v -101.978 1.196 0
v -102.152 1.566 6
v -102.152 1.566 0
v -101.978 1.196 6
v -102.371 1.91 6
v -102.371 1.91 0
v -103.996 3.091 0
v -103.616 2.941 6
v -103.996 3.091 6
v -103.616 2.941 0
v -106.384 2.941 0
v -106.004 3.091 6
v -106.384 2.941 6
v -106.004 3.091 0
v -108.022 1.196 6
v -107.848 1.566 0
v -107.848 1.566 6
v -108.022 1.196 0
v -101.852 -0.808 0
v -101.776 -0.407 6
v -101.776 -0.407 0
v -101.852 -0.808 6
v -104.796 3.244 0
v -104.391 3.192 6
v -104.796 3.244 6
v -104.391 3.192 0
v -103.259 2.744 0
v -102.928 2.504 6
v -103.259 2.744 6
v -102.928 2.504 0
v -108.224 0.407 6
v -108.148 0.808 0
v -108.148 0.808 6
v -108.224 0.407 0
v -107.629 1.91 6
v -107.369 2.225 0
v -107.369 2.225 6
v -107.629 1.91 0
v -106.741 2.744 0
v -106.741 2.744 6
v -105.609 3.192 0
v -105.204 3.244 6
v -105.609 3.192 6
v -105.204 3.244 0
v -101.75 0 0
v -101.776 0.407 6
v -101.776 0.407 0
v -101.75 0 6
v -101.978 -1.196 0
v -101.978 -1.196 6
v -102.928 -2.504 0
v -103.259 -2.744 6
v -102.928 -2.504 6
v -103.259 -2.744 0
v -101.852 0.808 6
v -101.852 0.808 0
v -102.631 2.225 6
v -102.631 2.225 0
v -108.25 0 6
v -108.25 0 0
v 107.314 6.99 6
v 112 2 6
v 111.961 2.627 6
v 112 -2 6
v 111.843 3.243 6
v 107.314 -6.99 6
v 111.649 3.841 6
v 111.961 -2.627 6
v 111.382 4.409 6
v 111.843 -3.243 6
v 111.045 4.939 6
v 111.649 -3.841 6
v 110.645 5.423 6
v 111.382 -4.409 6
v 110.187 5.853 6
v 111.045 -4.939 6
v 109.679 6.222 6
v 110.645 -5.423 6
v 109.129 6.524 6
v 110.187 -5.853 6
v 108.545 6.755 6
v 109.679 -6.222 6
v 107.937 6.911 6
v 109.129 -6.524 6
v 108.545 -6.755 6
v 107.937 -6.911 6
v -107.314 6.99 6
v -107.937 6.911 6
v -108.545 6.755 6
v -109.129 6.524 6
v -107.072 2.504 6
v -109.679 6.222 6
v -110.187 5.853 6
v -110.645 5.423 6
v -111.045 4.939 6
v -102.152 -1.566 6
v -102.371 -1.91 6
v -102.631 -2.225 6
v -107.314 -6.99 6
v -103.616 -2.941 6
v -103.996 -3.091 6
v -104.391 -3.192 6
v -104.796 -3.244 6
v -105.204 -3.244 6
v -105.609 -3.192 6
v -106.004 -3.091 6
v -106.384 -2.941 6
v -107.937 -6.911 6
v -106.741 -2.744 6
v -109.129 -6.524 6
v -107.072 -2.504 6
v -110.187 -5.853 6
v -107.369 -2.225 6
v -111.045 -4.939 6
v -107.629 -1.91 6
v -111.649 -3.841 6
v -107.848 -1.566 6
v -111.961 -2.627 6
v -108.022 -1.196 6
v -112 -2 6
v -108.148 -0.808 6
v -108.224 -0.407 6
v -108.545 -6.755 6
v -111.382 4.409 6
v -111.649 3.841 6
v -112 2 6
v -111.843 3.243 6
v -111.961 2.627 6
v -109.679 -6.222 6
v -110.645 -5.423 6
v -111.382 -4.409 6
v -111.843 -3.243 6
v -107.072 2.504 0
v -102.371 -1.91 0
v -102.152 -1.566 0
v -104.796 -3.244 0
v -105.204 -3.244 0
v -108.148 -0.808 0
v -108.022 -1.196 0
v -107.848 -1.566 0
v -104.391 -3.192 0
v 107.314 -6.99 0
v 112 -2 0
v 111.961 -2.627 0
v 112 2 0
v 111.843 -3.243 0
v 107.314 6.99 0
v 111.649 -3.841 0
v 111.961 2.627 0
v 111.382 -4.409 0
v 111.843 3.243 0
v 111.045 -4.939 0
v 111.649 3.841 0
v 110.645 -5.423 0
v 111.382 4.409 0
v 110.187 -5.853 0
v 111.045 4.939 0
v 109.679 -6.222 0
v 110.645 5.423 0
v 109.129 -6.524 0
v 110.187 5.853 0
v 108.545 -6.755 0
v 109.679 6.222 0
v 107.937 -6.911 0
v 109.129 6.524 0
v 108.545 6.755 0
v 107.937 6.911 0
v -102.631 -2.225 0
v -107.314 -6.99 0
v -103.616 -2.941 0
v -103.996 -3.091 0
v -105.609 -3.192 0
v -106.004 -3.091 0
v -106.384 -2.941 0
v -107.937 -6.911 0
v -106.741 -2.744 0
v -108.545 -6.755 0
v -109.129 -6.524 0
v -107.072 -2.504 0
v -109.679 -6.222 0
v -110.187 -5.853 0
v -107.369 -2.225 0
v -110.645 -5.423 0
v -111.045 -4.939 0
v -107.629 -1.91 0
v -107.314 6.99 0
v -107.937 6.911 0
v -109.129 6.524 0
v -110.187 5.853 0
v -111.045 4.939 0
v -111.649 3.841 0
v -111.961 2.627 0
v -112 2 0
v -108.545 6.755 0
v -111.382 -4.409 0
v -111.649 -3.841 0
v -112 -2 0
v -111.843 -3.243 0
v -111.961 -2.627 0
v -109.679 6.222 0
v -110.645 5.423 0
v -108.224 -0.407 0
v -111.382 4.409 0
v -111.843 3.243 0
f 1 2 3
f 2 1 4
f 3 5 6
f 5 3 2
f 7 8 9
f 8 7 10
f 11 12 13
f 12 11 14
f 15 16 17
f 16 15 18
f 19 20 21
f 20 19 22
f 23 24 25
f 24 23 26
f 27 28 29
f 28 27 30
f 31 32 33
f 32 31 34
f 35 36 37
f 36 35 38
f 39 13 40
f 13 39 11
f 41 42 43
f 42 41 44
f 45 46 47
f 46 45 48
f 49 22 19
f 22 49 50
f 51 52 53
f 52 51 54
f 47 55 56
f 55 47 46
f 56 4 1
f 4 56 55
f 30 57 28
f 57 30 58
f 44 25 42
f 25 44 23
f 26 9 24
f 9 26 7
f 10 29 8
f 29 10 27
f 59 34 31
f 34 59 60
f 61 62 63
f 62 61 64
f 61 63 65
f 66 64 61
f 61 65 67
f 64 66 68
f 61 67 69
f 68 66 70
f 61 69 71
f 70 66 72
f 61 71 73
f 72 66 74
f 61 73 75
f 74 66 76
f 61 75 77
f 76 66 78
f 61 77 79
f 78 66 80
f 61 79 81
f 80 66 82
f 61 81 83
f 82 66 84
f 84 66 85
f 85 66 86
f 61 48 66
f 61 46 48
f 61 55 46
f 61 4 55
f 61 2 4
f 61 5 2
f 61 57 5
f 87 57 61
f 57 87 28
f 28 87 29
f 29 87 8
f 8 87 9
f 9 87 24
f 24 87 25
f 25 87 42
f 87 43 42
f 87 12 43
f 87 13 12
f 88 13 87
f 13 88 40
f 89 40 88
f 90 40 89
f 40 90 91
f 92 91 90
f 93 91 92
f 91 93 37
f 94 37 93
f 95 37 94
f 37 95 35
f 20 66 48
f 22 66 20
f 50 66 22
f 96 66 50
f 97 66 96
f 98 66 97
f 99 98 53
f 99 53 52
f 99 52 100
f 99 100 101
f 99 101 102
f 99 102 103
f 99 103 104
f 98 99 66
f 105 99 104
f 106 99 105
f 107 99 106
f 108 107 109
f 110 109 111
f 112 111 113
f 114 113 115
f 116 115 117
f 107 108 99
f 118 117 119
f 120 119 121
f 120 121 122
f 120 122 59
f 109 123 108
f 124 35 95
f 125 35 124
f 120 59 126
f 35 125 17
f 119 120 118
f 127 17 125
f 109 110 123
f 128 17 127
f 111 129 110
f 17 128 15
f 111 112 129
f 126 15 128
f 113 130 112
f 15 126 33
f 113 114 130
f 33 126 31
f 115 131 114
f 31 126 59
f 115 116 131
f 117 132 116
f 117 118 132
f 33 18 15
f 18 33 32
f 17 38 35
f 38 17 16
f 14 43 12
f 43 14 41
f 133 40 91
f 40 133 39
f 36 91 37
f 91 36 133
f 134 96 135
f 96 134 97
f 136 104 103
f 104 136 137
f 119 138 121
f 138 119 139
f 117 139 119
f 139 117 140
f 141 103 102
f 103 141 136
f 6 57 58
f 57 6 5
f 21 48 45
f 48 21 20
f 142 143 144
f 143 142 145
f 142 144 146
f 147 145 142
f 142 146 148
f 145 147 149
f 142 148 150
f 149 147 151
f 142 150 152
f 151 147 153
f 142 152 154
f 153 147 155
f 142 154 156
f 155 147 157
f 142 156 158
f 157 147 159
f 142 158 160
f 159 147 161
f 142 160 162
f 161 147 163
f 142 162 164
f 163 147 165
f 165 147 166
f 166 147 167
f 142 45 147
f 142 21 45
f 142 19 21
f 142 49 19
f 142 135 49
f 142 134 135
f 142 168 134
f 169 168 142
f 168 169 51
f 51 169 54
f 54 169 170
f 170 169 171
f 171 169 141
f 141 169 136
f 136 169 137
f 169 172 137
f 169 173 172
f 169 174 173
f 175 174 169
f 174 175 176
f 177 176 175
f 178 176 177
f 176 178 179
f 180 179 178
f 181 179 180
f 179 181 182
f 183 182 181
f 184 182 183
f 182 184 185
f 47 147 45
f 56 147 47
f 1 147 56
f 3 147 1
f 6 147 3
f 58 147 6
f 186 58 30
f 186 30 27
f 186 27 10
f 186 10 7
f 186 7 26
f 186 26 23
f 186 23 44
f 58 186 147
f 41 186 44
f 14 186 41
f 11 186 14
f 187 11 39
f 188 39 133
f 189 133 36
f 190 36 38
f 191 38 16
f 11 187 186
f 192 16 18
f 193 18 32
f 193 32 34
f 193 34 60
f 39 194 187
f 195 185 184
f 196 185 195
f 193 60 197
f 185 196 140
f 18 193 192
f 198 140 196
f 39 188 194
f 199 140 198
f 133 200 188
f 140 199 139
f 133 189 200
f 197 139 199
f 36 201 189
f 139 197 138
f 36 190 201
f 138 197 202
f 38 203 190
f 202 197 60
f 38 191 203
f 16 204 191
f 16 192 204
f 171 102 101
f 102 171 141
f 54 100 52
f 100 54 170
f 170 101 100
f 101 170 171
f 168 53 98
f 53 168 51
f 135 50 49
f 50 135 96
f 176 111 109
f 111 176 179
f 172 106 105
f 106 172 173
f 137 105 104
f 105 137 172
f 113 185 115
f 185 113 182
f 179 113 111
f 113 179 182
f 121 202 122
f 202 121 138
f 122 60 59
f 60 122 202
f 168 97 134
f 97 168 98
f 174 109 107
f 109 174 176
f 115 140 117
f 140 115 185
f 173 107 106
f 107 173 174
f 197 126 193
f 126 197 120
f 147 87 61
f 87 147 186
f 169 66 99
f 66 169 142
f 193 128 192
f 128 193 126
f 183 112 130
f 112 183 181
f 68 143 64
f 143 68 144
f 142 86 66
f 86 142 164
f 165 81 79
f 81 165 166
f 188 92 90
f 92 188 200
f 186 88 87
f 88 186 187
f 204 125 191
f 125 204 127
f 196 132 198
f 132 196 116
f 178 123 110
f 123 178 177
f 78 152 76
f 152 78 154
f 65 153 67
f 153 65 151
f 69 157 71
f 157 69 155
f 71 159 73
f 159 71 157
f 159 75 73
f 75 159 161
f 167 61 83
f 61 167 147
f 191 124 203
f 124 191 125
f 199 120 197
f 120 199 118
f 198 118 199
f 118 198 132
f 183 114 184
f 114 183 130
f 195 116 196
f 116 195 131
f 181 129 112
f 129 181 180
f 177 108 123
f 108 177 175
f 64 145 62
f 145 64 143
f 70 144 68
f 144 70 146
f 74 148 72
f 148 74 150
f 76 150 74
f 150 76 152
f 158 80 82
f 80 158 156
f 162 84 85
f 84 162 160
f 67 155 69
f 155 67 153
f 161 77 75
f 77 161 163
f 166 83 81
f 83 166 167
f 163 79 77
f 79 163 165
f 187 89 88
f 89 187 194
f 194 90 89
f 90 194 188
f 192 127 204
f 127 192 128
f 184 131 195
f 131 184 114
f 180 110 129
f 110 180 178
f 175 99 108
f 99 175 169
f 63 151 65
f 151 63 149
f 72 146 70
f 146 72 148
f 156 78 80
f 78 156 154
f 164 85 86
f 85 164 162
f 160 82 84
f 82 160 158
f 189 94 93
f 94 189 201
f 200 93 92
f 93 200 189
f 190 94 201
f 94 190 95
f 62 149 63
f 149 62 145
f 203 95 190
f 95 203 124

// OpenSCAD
$fn = 50;


difference() {
	union() {
		hull() {
			translate(v = [-107.0000000000, 2.0000000000, 0]) {
				cylinder(h = 6, r = 5);
			}
			translate(v = [107.0000000000, 2.0000000000, 0]) {
				cylinder(h = 6, r = 5);
			}
			translate(v = [-107.0000000000, -2.0000000000, 0]) {
				cylinder(h = 6, r = 5);
			}
			translate(v = [107.0000000000, -2.0000000000, 0]) {
				cylinder(h = 6, r = 5);
			}
		}
	}
	union() {
		translate(v = [-105.0000000000, 0.0000000000, 0]) {
			cylinder(h = 6, r = 3.2500000000);
		}
		translate(v = [-105.0000000000, 0.0000000000, 0]) {
			cylinder(h = 6, r = 1.8000000000);
		}
		translate(v = [-105.0000000000, 0.0000000000, 0]) {
			cylinder(h = 6, r = 1.8000000000);
		}
		translate(v = [-105.0000000000, 0.0000000000, 0]) {
			cylinder(h = 6, r = 1.8000000000);
		}
	}
}
